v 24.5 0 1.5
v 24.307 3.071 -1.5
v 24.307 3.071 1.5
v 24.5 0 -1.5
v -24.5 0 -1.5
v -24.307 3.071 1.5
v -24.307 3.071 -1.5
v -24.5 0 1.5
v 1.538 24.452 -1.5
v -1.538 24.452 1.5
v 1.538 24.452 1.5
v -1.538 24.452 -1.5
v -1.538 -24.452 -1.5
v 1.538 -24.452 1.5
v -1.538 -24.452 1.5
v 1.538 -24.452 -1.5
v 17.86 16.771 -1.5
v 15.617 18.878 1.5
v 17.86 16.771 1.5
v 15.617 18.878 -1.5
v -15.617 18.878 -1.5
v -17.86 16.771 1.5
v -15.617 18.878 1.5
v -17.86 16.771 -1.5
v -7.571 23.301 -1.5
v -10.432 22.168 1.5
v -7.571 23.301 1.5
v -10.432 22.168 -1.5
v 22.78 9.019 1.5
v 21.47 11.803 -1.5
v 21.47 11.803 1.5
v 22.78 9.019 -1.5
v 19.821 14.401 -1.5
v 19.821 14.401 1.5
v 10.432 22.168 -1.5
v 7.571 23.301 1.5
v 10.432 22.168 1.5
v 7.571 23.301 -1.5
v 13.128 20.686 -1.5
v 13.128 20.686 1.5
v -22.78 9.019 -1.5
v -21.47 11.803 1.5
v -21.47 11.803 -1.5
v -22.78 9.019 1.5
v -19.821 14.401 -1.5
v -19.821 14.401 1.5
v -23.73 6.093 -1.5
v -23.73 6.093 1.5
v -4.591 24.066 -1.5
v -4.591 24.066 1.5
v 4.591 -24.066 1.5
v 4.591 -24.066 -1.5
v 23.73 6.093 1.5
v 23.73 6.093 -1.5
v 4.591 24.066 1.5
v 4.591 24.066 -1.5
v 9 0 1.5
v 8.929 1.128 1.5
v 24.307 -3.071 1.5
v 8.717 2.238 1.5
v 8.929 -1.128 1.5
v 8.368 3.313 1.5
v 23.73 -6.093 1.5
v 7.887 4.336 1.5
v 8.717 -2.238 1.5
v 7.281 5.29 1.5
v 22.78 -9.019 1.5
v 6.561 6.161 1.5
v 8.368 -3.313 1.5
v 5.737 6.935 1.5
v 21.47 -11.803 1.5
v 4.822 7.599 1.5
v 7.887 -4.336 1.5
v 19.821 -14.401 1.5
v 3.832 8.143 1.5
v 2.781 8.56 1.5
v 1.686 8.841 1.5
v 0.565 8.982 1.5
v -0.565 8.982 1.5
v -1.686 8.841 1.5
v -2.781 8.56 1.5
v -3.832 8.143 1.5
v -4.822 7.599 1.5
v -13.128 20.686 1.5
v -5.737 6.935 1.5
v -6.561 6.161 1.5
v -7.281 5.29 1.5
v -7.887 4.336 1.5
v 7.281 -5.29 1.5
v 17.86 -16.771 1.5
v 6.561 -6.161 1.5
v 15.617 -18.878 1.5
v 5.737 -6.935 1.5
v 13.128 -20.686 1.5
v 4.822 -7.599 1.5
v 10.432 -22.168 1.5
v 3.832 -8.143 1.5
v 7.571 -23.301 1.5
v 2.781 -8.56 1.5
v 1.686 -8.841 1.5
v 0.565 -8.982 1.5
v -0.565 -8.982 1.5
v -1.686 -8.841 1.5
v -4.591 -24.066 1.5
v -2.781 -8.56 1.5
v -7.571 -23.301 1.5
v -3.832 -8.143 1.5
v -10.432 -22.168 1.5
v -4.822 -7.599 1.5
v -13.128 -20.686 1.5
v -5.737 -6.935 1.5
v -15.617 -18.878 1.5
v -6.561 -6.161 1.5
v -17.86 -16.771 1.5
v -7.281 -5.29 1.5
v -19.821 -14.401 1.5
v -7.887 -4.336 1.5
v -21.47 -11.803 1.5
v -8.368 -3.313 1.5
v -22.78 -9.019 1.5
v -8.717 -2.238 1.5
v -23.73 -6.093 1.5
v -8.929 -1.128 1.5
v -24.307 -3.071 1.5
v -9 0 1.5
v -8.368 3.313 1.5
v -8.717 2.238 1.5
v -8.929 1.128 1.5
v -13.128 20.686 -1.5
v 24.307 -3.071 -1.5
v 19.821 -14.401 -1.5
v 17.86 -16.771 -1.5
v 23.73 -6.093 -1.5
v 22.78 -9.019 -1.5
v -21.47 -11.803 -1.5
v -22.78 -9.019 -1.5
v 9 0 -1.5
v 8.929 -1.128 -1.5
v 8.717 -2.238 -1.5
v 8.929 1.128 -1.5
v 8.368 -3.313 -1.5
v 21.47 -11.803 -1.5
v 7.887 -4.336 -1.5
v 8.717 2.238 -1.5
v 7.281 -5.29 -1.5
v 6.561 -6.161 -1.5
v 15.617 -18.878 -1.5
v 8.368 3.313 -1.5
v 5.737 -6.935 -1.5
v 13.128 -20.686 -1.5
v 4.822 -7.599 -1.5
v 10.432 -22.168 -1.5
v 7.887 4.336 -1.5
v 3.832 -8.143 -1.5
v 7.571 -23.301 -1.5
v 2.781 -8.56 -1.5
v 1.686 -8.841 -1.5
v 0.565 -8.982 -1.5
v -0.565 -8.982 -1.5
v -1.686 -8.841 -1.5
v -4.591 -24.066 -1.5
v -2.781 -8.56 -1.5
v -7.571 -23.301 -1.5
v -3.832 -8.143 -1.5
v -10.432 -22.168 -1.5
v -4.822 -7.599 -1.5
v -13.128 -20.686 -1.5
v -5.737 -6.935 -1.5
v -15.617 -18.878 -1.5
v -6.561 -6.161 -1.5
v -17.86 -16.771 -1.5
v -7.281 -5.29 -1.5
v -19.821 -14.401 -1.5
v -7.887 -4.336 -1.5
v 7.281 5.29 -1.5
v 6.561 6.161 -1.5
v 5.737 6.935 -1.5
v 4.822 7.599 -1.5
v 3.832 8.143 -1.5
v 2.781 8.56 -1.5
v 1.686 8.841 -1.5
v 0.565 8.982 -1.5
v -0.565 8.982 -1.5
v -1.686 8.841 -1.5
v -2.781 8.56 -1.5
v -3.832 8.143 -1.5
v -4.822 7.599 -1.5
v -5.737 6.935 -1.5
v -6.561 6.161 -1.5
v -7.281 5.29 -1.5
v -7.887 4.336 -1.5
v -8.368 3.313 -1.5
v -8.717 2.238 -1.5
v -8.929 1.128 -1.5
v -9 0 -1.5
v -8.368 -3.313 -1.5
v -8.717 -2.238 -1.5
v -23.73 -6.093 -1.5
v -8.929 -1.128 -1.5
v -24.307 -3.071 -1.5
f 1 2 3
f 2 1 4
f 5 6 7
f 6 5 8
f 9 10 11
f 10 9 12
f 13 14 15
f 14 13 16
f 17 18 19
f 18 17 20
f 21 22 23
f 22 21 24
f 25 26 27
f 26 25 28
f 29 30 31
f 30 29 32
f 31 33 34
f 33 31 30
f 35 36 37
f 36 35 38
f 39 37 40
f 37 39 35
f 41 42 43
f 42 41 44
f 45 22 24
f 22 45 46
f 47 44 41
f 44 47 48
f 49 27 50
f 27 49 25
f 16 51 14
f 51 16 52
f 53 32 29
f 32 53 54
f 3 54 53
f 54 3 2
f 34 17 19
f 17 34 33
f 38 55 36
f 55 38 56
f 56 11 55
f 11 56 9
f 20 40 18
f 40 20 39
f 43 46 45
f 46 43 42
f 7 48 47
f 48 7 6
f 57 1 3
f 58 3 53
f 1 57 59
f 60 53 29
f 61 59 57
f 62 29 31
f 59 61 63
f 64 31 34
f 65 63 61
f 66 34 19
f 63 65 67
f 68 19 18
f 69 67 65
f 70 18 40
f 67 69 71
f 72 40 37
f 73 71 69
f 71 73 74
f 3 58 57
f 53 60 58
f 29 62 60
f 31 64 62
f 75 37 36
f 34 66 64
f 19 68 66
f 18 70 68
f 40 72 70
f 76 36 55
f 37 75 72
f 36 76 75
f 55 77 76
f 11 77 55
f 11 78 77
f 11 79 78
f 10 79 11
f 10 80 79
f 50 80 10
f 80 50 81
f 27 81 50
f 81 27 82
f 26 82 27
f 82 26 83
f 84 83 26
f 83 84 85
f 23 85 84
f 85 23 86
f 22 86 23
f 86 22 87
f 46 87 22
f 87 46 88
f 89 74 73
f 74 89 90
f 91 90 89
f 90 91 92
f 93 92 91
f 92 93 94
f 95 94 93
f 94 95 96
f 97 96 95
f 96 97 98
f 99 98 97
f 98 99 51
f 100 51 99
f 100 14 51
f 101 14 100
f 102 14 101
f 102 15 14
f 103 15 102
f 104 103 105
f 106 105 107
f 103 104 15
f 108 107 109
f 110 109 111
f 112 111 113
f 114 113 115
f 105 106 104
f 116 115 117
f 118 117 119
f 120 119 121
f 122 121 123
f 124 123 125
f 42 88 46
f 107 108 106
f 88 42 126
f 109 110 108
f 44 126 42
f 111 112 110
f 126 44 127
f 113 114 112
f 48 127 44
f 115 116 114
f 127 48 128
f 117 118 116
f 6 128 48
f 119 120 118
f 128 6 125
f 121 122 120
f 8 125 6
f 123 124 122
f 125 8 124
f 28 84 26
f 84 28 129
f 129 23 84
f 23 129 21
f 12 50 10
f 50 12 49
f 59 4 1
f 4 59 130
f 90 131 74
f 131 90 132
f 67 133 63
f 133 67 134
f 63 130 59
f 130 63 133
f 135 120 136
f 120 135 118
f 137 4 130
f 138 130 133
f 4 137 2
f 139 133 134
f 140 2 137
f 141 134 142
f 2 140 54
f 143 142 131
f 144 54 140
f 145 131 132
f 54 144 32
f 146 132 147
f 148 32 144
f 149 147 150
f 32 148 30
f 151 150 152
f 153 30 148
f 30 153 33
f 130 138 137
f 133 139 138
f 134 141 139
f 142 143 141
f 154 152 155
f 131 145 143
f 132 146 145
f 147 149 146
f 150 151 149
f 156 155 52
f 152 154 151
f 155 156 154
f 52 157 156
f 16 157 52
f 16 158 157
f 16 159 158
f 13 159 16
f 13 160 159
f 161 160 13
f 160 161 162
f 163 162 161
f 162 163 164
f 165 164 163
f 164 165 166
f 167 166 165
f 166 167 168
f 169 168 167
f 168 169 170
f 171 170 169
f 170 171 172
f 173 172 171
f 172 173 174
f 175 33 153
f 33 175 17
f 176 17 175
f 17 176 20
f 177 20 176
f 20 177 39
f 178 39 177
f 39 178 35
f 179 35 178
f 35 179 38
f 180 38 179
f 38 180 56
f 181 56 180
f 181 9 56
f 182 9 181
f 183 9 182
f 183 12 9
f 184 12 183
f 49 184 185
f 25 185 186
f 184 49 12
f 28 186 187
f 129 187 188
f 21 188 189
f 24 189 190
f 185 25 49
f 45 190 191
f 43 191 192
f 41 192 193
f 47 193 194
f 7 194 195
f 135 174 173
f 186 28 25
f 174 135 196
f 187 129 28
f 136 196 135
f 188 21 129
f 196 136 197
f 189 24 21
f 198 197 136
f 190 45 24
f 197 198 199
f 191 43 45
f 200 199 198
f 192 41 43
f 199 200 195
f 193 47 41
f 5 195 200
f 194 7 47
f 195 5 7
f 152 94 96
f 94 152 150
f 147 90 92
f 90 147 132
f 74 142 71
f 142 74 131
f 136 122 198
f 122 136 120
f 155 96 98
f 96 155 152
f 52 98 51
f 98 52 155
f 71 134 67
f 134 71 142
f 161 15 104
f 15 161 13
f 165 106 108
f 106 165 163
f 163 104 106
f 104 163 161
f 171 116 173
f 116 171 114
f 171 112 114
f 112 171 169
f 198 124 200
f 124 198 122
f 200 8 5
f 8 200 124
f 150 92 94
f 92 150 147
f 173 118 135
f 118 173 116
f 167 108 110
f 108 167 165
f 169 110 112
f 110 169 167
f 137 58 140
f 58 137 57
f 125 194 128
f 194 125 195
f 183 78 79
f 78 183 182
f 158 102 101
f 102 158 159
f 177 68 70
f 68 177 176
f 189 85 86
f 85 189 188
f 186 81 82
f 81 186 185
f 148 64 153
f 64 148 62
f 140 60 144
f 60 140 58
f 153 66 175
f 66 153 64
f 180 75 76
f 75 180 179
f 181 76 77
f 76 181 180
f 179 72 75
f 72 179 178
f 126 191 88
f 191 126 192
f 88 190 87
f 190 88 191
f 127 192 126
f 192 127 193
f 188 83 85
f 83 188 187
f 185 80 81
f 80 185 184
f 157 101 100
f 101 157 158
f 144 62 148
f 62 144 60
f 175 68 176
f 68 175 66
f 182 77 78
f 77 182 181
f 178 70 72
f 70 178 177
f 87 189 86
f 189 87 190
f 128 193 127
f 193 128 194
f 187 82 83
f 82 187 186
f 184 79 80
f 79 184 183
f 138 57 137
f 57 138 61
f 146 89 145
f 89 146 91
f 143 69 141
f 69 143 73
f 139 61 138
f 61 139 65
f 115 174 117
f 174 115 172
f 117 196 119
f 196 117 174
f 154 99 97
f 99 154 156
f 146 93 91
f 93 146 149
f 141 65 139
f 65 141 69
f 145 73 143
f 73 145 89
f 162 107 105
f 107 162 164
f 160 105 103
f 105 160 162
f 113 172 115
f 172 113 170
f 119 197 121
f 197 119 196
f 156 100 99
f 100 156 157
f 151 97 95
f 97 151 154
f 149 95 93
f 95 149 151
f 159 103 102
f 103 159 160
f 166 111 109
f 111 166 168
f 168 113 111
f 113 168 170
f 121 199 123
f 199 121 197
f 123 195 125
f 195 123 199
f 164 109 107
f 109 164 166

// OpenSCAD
$fn = 50;


difference() {
	union() {
		translate(v = [0, 0, -1.5000000000]) {
			cylinder(h = 3, r = 24.5000000000);
		}
	}
	union() {
		translate(v = [0, 0, -100.0000000000]) {
			cylinder(h = 200, r = 9);
		}
	}
}
